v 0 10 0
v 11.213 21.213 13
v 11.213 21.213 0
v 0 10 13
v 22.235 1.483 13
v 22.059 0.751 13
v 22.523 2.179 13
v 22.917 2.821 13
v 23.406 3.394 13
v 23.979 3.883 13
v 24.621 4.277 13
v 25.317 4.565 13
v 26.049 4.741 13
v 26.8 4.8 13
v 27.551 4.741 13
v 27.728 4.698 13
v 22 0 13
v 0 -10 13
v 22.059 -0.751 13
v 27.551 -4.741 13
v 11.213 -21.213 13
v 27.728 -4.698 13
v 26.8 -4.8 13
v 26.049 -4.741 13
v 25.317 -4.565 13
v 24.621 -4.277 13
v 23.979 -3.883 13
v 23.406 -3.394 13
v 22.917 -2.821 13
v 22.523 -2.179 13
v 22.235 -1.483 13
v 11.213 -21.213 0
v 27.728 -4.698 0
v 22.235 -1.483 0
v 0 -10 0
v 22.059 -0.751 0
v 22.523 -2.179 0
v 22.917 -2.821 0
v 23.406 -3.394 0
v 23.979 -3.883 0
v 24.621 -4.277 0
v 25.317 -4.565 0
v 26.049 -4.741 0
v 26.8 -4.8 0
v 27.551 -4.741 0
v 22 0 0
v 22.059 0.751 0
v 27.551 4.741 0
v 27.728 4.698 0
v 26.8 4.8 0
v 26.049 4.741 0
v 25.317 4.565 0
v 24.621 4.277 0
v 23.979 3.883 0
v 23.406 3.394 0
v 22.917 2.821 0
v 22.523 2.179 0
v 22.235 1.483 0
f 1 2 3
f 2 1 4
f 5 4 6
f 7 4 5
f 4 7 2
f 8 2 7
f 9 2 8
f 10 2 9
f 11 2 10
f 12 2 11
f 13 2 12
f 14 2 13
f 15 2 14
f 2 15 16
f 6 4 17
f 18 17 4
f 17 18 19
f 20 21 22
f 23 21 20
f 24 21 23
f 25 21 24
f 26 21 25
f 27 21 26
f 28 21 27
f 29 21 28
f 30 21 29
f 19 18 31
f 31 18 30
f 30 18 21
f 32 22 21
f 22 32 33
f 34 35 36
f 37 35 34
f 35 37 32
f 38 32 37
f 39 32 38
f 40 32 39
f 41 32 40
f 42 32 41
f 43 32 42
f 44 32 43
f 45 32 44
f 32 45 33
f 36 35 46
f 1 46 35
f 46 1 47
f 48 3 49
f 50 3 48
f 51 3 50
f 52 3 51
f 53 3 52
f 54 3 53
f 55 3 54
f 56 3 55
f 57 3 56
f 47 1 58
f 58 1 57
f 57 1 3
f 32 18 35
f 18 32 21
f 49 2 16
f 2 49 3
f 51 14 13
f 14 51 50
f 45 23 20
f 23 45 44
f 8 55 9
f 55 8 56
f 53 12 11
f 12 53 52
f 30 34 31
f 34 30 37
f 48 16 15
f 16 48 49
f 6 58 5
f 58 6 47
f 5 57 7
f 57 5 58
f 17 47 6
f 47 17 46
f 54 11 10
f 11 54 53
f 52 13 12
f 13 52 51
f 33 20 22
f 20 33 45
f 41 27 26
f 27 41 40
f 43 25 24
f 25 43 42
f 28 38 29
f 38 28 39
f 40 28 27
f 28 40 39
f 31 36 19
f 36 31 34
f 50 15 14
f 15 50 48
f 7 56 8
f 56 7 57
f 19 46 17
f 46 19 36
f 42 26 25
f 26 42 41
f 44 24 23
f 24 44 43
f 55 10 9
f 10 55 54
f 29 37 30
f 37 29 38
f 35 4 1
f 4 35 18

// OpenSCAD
difference(){
   translate([-10,0,0])rotate([0,0,-45])cube([30,30,13]);
    translate([4.8+22,0,-1])cylinder(r=4.8, h=15,$fn=40);
     translate([4.8+24,0,-1])cylinder(r=4.8, h=15,$fn=40);
    translate([-30,-15,-1])cube([30,30,15]);
}
